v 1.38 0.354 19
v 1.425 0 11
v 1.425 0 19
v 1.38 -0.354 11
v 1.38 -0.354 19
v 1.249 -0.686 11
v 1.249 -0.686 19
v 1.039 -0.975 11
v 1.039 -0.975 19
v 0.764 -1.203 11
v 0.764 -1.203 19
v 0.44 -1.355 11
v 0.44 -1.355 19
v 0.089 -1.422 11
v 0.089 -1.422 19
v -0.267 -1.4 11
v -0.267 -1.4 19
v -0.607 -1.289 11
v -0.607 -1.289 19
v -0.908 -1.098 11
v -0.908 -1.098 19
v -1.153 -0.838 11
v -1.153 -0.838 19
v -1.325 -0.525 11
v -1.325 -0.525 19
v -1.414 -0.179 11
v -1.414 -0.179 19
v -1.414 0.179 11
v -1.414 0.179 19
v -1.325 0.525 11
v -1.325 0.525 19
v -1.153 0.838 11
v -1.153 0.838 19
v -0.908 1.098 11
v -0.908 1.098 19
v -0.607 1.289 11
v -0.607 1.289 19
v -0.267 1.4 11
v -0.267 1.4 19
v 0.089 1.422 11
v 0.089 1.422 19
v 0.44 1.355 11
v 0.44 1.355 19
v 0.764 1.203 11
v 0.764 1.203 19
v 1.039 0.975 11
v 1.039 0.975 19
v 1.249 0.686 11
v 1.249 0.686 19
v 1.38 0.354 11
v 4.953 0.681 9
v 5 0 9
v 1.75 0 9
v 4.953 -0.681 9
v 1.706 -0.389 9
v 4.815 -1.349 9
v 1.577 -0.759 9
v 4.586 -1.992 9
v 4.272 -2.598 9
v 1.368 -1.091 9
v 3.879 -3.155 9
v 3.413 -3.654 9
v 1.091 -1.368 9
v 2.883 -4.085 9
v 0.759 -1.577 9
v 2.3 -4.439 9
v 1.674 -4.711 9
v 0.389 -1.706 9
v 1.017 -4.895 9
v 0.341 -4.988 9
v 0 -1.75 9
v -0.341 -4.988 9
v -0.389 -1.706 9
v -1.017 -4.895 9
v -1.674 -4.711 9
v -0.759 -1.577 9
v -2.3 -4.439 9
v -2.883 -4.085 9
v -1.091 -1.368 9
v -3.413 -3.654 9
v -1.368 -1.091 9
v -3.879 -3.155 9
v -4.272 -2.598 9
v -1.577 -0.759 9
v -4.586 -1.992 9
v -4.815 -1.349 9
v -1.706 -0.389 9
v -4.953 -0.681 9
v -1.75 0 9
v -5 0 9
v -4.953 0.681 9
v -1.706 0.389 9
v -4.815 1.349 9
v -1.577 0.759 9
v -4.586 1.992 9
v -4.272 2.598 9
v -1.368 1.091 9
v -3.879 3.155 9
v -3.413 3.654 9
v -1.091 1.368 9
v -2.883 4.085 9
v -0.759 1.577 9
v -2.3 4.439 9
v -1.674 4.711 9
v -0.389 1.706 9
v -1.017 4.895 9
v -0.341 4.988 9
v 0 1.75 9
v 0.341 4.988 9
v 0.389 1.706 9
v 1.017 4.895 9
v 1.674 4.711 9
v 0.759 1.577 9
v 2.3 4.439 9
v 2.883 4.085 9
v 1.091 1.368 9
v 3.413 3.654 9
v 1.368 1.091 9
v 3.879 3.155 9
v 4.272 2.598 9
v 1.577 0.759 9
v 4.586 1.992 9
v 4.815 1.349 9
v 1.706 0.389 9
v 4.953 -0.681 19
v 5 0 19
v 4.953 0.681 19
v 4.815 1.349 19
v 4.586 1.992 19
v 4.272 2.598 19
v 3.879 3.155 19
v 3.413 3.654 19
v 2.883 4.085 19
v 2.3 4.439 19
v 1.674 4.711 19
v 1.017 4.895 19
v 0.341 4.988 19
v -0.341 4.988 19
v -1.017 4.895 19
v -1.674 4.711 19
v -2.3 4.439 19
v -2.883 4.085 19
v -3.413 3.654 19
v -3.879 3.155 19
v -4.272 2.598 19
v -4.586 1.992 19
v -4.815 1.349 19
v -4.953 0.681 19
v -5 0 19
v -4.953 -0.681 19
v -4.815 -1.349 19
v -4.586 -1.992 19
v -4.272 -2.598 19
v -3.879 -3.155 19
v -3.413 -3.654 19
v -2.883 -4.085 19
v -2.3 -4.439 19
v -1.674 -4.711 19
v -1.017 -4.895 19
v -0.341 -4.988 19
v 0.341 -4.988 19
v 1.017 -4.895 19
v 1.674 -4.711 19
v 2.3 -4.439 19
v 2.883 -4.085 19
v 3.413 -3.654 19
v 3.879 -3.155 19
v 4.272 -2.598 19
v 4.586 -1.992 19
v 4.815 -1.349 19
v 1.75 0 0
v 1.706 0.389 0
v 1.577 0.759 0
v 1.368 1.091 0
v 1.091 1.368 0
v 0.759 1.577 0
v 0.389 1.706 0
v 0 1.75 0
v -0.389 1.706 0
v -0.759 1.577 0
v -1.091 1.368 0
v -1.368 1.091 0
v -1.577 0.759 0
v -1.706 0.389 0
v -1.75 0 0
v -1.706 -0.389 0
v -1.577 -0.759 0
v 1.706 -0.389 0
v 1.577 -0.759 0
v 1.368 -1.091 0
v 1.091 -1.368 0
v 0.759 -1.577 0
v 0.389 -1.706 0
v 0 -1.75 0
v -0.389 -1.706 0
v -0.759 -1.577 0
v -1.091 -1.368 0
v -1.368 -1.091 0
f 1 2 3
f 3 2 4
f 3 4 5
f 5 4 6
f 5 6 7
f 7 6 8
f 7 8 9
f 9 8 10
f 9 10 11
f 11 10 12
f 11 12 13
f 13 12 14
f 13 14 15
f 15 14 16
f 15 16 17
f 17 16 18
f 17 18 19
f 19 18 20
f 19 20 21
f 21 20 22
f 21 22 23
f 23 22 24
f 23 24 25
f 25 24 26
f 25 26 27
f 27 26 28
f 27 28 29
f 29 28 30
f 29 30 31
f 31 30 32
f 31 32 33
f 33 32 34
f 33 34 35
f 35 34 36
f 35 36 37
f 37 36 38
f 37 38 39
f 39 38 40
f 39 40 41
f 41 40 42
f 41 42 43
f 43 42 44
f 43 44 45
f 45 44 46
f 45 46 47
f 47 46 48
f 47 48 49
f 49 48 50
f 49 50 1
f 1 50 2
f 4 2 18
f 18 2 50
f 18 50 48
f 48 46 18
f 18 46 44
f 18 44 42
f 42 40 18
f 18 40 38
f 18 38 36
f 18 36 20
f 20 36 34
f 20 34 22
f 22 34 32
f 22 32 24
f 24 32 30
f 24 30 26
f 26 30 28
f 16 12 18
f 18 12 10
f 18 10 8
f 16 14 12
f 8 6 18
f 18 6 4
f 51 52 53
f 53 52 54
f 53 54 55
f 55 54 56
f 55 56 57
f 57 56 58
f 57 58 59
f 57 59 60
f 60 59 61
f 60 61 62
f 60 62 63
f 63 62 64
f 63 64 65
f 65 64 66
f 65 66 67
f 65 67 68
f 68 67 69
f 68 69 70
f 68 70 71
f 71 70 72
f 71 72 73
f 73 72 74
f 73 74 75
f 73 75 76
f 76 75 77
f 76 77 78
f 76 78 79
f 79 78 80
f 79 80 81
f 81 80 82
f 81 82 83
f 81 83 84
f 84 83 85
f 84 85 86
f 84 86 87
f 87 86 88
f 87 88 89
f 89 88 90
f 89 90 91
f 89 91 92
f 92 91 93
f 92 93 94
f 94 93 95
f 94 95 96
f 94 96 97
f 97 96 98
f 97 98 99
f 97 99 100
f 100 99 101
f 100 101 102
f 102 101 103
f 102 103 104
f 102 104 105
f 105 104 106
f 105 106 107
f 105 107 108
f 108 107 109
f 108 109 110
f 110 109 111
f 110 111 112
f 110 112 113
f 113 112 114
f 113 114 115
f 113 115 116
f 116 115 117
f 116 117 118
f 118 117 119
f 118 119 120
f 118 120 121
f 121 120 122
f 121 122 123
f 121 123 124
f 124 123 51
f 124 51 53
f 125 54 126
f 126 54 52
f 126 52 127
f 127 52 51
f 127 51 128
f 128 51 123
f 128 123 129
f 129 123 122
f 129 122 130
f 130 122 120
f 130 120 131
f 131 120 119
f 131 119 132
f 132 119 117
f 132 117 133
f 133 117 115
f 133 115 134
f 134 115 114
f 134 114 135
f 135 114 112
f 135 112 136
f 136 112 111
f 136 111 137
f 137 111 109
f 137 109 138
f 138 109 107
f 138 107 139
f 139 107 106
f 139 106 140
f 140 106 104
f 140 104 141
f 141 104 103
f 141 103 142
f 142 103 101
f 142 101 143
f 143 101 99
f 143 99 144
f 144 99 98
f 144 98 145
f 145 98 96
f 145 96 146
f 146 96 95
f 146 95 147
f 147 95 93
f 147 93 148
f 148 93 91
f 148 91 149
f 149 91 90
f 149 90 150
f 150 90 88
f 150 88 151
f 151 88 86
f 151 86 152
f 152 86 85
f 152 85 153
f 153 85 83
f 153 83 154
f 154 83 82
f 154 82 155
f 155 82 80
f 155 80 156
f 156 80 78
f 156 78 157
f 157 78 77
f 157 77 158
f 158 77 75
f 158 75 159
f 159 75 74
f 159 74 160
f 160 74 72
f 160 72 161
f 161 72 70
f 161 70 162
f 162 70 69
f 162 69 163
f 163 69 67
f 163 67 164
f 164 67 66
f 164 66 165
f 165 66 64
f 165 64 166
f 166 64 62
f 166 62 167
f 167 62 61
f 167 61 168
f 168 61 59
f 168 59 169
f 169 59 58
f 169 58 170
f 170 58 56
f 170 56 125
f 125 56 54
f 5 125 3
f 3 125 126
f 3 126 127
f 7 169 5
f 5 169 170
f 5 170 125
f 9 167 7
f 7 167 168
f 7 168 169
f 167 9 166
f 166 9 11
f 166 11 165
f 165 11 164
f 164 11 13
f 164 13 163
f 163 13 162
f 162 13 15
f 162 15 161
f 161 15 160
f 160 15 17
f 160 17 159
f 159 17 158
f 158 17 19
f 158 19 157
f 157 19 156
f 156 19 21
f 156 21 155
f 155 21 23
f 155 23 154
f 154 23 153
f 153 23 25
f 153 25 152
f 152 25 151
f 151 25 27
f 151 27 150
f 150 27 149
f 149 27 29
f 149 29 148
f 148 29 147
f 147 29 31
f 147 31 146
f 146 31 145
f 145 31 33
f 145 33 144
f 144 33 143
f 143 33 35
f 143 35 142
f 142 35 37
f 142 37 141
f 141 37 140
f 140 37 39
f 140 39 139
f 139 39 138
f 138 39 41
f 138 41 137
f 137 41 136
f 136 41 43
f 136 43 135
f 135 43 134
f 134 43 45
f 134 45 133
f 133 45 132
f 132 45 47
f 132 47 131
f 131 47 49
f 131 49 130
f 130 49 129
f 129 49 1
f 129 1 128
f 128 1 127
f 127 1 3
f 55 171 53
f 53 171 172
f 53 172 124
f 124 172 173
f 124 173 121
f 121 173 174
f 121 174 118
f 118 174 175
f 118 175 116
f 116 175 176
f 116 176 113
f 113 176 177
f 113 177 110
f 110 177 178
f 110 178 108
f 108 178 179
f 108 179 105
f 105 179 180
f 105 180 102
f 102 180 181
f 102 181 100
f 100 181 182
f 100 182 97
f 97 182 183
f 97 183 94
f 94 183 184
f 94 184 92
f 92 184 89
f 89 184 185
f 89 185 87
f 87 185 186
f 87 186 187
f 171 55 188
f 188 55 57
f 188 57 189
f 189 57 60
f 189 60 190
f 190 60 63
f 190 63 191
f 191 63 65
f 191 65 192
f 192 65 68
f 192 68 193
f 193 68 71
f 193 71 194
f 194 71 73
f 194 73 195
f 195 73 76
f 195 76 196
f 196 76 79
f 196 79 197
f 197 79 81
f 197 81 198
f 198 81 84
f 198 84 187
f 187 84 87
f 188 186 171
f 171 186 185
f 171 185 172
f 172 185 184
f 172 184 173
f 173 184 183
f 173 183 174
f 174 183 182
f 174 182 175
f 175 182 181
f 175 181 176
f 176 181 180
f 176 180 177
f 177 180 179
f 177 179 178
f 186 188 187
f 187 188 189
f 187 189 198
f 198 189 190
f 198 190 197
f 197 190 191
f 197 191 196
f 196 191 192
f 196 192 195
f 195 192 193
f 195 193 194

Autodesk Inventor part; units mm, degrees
ref_plane "YZ Plane" through (0, 0, 0) normal (1, 0, 0) x (0, 1, 0)
ref_plane "XZ Plane" through (0, 0, 0) normal (0, 1, 0) x (-1, 0, 0)
ref_plane "XY Plane" through (0, 0, 0) normal (0, 0, 1) x (1, 0, 0)
sketch "Sketch7" plane through (0, 0, 0) normal (0, 0, 1) x (1, 0, 0)
  circle A0 centre (0, 0) radius 1.75
  dimension "d19" = 3.5
extrude "Extrusion6" add sketch "Sketch7" along normal blind 9
sketch "Sketch8" plane through (0, 0, 9) normal (0, 0, 1) x (1, 0, 0)
  circle A0 centre (0, 0) radius 5
  dimension "d22" = 10
extrude "Extrusion7" add sketch "Sketch8" along normal blind 10
sketch "Sketch9" plane through (0, 0, 19) normal (0, 0, 1) x (1, 0, 0)
  point P0 (0, 0)
  point P1 (0, 0)
hole "Hole1" at (0, 0, 19) direction (0, 0, -1) diameter 2.85 depth 8 thread size "M3.5x0.6" class "6H" standard "ANSI Metric M Profile"
properties part number "Elbow_Parallel_Rod_V1"
